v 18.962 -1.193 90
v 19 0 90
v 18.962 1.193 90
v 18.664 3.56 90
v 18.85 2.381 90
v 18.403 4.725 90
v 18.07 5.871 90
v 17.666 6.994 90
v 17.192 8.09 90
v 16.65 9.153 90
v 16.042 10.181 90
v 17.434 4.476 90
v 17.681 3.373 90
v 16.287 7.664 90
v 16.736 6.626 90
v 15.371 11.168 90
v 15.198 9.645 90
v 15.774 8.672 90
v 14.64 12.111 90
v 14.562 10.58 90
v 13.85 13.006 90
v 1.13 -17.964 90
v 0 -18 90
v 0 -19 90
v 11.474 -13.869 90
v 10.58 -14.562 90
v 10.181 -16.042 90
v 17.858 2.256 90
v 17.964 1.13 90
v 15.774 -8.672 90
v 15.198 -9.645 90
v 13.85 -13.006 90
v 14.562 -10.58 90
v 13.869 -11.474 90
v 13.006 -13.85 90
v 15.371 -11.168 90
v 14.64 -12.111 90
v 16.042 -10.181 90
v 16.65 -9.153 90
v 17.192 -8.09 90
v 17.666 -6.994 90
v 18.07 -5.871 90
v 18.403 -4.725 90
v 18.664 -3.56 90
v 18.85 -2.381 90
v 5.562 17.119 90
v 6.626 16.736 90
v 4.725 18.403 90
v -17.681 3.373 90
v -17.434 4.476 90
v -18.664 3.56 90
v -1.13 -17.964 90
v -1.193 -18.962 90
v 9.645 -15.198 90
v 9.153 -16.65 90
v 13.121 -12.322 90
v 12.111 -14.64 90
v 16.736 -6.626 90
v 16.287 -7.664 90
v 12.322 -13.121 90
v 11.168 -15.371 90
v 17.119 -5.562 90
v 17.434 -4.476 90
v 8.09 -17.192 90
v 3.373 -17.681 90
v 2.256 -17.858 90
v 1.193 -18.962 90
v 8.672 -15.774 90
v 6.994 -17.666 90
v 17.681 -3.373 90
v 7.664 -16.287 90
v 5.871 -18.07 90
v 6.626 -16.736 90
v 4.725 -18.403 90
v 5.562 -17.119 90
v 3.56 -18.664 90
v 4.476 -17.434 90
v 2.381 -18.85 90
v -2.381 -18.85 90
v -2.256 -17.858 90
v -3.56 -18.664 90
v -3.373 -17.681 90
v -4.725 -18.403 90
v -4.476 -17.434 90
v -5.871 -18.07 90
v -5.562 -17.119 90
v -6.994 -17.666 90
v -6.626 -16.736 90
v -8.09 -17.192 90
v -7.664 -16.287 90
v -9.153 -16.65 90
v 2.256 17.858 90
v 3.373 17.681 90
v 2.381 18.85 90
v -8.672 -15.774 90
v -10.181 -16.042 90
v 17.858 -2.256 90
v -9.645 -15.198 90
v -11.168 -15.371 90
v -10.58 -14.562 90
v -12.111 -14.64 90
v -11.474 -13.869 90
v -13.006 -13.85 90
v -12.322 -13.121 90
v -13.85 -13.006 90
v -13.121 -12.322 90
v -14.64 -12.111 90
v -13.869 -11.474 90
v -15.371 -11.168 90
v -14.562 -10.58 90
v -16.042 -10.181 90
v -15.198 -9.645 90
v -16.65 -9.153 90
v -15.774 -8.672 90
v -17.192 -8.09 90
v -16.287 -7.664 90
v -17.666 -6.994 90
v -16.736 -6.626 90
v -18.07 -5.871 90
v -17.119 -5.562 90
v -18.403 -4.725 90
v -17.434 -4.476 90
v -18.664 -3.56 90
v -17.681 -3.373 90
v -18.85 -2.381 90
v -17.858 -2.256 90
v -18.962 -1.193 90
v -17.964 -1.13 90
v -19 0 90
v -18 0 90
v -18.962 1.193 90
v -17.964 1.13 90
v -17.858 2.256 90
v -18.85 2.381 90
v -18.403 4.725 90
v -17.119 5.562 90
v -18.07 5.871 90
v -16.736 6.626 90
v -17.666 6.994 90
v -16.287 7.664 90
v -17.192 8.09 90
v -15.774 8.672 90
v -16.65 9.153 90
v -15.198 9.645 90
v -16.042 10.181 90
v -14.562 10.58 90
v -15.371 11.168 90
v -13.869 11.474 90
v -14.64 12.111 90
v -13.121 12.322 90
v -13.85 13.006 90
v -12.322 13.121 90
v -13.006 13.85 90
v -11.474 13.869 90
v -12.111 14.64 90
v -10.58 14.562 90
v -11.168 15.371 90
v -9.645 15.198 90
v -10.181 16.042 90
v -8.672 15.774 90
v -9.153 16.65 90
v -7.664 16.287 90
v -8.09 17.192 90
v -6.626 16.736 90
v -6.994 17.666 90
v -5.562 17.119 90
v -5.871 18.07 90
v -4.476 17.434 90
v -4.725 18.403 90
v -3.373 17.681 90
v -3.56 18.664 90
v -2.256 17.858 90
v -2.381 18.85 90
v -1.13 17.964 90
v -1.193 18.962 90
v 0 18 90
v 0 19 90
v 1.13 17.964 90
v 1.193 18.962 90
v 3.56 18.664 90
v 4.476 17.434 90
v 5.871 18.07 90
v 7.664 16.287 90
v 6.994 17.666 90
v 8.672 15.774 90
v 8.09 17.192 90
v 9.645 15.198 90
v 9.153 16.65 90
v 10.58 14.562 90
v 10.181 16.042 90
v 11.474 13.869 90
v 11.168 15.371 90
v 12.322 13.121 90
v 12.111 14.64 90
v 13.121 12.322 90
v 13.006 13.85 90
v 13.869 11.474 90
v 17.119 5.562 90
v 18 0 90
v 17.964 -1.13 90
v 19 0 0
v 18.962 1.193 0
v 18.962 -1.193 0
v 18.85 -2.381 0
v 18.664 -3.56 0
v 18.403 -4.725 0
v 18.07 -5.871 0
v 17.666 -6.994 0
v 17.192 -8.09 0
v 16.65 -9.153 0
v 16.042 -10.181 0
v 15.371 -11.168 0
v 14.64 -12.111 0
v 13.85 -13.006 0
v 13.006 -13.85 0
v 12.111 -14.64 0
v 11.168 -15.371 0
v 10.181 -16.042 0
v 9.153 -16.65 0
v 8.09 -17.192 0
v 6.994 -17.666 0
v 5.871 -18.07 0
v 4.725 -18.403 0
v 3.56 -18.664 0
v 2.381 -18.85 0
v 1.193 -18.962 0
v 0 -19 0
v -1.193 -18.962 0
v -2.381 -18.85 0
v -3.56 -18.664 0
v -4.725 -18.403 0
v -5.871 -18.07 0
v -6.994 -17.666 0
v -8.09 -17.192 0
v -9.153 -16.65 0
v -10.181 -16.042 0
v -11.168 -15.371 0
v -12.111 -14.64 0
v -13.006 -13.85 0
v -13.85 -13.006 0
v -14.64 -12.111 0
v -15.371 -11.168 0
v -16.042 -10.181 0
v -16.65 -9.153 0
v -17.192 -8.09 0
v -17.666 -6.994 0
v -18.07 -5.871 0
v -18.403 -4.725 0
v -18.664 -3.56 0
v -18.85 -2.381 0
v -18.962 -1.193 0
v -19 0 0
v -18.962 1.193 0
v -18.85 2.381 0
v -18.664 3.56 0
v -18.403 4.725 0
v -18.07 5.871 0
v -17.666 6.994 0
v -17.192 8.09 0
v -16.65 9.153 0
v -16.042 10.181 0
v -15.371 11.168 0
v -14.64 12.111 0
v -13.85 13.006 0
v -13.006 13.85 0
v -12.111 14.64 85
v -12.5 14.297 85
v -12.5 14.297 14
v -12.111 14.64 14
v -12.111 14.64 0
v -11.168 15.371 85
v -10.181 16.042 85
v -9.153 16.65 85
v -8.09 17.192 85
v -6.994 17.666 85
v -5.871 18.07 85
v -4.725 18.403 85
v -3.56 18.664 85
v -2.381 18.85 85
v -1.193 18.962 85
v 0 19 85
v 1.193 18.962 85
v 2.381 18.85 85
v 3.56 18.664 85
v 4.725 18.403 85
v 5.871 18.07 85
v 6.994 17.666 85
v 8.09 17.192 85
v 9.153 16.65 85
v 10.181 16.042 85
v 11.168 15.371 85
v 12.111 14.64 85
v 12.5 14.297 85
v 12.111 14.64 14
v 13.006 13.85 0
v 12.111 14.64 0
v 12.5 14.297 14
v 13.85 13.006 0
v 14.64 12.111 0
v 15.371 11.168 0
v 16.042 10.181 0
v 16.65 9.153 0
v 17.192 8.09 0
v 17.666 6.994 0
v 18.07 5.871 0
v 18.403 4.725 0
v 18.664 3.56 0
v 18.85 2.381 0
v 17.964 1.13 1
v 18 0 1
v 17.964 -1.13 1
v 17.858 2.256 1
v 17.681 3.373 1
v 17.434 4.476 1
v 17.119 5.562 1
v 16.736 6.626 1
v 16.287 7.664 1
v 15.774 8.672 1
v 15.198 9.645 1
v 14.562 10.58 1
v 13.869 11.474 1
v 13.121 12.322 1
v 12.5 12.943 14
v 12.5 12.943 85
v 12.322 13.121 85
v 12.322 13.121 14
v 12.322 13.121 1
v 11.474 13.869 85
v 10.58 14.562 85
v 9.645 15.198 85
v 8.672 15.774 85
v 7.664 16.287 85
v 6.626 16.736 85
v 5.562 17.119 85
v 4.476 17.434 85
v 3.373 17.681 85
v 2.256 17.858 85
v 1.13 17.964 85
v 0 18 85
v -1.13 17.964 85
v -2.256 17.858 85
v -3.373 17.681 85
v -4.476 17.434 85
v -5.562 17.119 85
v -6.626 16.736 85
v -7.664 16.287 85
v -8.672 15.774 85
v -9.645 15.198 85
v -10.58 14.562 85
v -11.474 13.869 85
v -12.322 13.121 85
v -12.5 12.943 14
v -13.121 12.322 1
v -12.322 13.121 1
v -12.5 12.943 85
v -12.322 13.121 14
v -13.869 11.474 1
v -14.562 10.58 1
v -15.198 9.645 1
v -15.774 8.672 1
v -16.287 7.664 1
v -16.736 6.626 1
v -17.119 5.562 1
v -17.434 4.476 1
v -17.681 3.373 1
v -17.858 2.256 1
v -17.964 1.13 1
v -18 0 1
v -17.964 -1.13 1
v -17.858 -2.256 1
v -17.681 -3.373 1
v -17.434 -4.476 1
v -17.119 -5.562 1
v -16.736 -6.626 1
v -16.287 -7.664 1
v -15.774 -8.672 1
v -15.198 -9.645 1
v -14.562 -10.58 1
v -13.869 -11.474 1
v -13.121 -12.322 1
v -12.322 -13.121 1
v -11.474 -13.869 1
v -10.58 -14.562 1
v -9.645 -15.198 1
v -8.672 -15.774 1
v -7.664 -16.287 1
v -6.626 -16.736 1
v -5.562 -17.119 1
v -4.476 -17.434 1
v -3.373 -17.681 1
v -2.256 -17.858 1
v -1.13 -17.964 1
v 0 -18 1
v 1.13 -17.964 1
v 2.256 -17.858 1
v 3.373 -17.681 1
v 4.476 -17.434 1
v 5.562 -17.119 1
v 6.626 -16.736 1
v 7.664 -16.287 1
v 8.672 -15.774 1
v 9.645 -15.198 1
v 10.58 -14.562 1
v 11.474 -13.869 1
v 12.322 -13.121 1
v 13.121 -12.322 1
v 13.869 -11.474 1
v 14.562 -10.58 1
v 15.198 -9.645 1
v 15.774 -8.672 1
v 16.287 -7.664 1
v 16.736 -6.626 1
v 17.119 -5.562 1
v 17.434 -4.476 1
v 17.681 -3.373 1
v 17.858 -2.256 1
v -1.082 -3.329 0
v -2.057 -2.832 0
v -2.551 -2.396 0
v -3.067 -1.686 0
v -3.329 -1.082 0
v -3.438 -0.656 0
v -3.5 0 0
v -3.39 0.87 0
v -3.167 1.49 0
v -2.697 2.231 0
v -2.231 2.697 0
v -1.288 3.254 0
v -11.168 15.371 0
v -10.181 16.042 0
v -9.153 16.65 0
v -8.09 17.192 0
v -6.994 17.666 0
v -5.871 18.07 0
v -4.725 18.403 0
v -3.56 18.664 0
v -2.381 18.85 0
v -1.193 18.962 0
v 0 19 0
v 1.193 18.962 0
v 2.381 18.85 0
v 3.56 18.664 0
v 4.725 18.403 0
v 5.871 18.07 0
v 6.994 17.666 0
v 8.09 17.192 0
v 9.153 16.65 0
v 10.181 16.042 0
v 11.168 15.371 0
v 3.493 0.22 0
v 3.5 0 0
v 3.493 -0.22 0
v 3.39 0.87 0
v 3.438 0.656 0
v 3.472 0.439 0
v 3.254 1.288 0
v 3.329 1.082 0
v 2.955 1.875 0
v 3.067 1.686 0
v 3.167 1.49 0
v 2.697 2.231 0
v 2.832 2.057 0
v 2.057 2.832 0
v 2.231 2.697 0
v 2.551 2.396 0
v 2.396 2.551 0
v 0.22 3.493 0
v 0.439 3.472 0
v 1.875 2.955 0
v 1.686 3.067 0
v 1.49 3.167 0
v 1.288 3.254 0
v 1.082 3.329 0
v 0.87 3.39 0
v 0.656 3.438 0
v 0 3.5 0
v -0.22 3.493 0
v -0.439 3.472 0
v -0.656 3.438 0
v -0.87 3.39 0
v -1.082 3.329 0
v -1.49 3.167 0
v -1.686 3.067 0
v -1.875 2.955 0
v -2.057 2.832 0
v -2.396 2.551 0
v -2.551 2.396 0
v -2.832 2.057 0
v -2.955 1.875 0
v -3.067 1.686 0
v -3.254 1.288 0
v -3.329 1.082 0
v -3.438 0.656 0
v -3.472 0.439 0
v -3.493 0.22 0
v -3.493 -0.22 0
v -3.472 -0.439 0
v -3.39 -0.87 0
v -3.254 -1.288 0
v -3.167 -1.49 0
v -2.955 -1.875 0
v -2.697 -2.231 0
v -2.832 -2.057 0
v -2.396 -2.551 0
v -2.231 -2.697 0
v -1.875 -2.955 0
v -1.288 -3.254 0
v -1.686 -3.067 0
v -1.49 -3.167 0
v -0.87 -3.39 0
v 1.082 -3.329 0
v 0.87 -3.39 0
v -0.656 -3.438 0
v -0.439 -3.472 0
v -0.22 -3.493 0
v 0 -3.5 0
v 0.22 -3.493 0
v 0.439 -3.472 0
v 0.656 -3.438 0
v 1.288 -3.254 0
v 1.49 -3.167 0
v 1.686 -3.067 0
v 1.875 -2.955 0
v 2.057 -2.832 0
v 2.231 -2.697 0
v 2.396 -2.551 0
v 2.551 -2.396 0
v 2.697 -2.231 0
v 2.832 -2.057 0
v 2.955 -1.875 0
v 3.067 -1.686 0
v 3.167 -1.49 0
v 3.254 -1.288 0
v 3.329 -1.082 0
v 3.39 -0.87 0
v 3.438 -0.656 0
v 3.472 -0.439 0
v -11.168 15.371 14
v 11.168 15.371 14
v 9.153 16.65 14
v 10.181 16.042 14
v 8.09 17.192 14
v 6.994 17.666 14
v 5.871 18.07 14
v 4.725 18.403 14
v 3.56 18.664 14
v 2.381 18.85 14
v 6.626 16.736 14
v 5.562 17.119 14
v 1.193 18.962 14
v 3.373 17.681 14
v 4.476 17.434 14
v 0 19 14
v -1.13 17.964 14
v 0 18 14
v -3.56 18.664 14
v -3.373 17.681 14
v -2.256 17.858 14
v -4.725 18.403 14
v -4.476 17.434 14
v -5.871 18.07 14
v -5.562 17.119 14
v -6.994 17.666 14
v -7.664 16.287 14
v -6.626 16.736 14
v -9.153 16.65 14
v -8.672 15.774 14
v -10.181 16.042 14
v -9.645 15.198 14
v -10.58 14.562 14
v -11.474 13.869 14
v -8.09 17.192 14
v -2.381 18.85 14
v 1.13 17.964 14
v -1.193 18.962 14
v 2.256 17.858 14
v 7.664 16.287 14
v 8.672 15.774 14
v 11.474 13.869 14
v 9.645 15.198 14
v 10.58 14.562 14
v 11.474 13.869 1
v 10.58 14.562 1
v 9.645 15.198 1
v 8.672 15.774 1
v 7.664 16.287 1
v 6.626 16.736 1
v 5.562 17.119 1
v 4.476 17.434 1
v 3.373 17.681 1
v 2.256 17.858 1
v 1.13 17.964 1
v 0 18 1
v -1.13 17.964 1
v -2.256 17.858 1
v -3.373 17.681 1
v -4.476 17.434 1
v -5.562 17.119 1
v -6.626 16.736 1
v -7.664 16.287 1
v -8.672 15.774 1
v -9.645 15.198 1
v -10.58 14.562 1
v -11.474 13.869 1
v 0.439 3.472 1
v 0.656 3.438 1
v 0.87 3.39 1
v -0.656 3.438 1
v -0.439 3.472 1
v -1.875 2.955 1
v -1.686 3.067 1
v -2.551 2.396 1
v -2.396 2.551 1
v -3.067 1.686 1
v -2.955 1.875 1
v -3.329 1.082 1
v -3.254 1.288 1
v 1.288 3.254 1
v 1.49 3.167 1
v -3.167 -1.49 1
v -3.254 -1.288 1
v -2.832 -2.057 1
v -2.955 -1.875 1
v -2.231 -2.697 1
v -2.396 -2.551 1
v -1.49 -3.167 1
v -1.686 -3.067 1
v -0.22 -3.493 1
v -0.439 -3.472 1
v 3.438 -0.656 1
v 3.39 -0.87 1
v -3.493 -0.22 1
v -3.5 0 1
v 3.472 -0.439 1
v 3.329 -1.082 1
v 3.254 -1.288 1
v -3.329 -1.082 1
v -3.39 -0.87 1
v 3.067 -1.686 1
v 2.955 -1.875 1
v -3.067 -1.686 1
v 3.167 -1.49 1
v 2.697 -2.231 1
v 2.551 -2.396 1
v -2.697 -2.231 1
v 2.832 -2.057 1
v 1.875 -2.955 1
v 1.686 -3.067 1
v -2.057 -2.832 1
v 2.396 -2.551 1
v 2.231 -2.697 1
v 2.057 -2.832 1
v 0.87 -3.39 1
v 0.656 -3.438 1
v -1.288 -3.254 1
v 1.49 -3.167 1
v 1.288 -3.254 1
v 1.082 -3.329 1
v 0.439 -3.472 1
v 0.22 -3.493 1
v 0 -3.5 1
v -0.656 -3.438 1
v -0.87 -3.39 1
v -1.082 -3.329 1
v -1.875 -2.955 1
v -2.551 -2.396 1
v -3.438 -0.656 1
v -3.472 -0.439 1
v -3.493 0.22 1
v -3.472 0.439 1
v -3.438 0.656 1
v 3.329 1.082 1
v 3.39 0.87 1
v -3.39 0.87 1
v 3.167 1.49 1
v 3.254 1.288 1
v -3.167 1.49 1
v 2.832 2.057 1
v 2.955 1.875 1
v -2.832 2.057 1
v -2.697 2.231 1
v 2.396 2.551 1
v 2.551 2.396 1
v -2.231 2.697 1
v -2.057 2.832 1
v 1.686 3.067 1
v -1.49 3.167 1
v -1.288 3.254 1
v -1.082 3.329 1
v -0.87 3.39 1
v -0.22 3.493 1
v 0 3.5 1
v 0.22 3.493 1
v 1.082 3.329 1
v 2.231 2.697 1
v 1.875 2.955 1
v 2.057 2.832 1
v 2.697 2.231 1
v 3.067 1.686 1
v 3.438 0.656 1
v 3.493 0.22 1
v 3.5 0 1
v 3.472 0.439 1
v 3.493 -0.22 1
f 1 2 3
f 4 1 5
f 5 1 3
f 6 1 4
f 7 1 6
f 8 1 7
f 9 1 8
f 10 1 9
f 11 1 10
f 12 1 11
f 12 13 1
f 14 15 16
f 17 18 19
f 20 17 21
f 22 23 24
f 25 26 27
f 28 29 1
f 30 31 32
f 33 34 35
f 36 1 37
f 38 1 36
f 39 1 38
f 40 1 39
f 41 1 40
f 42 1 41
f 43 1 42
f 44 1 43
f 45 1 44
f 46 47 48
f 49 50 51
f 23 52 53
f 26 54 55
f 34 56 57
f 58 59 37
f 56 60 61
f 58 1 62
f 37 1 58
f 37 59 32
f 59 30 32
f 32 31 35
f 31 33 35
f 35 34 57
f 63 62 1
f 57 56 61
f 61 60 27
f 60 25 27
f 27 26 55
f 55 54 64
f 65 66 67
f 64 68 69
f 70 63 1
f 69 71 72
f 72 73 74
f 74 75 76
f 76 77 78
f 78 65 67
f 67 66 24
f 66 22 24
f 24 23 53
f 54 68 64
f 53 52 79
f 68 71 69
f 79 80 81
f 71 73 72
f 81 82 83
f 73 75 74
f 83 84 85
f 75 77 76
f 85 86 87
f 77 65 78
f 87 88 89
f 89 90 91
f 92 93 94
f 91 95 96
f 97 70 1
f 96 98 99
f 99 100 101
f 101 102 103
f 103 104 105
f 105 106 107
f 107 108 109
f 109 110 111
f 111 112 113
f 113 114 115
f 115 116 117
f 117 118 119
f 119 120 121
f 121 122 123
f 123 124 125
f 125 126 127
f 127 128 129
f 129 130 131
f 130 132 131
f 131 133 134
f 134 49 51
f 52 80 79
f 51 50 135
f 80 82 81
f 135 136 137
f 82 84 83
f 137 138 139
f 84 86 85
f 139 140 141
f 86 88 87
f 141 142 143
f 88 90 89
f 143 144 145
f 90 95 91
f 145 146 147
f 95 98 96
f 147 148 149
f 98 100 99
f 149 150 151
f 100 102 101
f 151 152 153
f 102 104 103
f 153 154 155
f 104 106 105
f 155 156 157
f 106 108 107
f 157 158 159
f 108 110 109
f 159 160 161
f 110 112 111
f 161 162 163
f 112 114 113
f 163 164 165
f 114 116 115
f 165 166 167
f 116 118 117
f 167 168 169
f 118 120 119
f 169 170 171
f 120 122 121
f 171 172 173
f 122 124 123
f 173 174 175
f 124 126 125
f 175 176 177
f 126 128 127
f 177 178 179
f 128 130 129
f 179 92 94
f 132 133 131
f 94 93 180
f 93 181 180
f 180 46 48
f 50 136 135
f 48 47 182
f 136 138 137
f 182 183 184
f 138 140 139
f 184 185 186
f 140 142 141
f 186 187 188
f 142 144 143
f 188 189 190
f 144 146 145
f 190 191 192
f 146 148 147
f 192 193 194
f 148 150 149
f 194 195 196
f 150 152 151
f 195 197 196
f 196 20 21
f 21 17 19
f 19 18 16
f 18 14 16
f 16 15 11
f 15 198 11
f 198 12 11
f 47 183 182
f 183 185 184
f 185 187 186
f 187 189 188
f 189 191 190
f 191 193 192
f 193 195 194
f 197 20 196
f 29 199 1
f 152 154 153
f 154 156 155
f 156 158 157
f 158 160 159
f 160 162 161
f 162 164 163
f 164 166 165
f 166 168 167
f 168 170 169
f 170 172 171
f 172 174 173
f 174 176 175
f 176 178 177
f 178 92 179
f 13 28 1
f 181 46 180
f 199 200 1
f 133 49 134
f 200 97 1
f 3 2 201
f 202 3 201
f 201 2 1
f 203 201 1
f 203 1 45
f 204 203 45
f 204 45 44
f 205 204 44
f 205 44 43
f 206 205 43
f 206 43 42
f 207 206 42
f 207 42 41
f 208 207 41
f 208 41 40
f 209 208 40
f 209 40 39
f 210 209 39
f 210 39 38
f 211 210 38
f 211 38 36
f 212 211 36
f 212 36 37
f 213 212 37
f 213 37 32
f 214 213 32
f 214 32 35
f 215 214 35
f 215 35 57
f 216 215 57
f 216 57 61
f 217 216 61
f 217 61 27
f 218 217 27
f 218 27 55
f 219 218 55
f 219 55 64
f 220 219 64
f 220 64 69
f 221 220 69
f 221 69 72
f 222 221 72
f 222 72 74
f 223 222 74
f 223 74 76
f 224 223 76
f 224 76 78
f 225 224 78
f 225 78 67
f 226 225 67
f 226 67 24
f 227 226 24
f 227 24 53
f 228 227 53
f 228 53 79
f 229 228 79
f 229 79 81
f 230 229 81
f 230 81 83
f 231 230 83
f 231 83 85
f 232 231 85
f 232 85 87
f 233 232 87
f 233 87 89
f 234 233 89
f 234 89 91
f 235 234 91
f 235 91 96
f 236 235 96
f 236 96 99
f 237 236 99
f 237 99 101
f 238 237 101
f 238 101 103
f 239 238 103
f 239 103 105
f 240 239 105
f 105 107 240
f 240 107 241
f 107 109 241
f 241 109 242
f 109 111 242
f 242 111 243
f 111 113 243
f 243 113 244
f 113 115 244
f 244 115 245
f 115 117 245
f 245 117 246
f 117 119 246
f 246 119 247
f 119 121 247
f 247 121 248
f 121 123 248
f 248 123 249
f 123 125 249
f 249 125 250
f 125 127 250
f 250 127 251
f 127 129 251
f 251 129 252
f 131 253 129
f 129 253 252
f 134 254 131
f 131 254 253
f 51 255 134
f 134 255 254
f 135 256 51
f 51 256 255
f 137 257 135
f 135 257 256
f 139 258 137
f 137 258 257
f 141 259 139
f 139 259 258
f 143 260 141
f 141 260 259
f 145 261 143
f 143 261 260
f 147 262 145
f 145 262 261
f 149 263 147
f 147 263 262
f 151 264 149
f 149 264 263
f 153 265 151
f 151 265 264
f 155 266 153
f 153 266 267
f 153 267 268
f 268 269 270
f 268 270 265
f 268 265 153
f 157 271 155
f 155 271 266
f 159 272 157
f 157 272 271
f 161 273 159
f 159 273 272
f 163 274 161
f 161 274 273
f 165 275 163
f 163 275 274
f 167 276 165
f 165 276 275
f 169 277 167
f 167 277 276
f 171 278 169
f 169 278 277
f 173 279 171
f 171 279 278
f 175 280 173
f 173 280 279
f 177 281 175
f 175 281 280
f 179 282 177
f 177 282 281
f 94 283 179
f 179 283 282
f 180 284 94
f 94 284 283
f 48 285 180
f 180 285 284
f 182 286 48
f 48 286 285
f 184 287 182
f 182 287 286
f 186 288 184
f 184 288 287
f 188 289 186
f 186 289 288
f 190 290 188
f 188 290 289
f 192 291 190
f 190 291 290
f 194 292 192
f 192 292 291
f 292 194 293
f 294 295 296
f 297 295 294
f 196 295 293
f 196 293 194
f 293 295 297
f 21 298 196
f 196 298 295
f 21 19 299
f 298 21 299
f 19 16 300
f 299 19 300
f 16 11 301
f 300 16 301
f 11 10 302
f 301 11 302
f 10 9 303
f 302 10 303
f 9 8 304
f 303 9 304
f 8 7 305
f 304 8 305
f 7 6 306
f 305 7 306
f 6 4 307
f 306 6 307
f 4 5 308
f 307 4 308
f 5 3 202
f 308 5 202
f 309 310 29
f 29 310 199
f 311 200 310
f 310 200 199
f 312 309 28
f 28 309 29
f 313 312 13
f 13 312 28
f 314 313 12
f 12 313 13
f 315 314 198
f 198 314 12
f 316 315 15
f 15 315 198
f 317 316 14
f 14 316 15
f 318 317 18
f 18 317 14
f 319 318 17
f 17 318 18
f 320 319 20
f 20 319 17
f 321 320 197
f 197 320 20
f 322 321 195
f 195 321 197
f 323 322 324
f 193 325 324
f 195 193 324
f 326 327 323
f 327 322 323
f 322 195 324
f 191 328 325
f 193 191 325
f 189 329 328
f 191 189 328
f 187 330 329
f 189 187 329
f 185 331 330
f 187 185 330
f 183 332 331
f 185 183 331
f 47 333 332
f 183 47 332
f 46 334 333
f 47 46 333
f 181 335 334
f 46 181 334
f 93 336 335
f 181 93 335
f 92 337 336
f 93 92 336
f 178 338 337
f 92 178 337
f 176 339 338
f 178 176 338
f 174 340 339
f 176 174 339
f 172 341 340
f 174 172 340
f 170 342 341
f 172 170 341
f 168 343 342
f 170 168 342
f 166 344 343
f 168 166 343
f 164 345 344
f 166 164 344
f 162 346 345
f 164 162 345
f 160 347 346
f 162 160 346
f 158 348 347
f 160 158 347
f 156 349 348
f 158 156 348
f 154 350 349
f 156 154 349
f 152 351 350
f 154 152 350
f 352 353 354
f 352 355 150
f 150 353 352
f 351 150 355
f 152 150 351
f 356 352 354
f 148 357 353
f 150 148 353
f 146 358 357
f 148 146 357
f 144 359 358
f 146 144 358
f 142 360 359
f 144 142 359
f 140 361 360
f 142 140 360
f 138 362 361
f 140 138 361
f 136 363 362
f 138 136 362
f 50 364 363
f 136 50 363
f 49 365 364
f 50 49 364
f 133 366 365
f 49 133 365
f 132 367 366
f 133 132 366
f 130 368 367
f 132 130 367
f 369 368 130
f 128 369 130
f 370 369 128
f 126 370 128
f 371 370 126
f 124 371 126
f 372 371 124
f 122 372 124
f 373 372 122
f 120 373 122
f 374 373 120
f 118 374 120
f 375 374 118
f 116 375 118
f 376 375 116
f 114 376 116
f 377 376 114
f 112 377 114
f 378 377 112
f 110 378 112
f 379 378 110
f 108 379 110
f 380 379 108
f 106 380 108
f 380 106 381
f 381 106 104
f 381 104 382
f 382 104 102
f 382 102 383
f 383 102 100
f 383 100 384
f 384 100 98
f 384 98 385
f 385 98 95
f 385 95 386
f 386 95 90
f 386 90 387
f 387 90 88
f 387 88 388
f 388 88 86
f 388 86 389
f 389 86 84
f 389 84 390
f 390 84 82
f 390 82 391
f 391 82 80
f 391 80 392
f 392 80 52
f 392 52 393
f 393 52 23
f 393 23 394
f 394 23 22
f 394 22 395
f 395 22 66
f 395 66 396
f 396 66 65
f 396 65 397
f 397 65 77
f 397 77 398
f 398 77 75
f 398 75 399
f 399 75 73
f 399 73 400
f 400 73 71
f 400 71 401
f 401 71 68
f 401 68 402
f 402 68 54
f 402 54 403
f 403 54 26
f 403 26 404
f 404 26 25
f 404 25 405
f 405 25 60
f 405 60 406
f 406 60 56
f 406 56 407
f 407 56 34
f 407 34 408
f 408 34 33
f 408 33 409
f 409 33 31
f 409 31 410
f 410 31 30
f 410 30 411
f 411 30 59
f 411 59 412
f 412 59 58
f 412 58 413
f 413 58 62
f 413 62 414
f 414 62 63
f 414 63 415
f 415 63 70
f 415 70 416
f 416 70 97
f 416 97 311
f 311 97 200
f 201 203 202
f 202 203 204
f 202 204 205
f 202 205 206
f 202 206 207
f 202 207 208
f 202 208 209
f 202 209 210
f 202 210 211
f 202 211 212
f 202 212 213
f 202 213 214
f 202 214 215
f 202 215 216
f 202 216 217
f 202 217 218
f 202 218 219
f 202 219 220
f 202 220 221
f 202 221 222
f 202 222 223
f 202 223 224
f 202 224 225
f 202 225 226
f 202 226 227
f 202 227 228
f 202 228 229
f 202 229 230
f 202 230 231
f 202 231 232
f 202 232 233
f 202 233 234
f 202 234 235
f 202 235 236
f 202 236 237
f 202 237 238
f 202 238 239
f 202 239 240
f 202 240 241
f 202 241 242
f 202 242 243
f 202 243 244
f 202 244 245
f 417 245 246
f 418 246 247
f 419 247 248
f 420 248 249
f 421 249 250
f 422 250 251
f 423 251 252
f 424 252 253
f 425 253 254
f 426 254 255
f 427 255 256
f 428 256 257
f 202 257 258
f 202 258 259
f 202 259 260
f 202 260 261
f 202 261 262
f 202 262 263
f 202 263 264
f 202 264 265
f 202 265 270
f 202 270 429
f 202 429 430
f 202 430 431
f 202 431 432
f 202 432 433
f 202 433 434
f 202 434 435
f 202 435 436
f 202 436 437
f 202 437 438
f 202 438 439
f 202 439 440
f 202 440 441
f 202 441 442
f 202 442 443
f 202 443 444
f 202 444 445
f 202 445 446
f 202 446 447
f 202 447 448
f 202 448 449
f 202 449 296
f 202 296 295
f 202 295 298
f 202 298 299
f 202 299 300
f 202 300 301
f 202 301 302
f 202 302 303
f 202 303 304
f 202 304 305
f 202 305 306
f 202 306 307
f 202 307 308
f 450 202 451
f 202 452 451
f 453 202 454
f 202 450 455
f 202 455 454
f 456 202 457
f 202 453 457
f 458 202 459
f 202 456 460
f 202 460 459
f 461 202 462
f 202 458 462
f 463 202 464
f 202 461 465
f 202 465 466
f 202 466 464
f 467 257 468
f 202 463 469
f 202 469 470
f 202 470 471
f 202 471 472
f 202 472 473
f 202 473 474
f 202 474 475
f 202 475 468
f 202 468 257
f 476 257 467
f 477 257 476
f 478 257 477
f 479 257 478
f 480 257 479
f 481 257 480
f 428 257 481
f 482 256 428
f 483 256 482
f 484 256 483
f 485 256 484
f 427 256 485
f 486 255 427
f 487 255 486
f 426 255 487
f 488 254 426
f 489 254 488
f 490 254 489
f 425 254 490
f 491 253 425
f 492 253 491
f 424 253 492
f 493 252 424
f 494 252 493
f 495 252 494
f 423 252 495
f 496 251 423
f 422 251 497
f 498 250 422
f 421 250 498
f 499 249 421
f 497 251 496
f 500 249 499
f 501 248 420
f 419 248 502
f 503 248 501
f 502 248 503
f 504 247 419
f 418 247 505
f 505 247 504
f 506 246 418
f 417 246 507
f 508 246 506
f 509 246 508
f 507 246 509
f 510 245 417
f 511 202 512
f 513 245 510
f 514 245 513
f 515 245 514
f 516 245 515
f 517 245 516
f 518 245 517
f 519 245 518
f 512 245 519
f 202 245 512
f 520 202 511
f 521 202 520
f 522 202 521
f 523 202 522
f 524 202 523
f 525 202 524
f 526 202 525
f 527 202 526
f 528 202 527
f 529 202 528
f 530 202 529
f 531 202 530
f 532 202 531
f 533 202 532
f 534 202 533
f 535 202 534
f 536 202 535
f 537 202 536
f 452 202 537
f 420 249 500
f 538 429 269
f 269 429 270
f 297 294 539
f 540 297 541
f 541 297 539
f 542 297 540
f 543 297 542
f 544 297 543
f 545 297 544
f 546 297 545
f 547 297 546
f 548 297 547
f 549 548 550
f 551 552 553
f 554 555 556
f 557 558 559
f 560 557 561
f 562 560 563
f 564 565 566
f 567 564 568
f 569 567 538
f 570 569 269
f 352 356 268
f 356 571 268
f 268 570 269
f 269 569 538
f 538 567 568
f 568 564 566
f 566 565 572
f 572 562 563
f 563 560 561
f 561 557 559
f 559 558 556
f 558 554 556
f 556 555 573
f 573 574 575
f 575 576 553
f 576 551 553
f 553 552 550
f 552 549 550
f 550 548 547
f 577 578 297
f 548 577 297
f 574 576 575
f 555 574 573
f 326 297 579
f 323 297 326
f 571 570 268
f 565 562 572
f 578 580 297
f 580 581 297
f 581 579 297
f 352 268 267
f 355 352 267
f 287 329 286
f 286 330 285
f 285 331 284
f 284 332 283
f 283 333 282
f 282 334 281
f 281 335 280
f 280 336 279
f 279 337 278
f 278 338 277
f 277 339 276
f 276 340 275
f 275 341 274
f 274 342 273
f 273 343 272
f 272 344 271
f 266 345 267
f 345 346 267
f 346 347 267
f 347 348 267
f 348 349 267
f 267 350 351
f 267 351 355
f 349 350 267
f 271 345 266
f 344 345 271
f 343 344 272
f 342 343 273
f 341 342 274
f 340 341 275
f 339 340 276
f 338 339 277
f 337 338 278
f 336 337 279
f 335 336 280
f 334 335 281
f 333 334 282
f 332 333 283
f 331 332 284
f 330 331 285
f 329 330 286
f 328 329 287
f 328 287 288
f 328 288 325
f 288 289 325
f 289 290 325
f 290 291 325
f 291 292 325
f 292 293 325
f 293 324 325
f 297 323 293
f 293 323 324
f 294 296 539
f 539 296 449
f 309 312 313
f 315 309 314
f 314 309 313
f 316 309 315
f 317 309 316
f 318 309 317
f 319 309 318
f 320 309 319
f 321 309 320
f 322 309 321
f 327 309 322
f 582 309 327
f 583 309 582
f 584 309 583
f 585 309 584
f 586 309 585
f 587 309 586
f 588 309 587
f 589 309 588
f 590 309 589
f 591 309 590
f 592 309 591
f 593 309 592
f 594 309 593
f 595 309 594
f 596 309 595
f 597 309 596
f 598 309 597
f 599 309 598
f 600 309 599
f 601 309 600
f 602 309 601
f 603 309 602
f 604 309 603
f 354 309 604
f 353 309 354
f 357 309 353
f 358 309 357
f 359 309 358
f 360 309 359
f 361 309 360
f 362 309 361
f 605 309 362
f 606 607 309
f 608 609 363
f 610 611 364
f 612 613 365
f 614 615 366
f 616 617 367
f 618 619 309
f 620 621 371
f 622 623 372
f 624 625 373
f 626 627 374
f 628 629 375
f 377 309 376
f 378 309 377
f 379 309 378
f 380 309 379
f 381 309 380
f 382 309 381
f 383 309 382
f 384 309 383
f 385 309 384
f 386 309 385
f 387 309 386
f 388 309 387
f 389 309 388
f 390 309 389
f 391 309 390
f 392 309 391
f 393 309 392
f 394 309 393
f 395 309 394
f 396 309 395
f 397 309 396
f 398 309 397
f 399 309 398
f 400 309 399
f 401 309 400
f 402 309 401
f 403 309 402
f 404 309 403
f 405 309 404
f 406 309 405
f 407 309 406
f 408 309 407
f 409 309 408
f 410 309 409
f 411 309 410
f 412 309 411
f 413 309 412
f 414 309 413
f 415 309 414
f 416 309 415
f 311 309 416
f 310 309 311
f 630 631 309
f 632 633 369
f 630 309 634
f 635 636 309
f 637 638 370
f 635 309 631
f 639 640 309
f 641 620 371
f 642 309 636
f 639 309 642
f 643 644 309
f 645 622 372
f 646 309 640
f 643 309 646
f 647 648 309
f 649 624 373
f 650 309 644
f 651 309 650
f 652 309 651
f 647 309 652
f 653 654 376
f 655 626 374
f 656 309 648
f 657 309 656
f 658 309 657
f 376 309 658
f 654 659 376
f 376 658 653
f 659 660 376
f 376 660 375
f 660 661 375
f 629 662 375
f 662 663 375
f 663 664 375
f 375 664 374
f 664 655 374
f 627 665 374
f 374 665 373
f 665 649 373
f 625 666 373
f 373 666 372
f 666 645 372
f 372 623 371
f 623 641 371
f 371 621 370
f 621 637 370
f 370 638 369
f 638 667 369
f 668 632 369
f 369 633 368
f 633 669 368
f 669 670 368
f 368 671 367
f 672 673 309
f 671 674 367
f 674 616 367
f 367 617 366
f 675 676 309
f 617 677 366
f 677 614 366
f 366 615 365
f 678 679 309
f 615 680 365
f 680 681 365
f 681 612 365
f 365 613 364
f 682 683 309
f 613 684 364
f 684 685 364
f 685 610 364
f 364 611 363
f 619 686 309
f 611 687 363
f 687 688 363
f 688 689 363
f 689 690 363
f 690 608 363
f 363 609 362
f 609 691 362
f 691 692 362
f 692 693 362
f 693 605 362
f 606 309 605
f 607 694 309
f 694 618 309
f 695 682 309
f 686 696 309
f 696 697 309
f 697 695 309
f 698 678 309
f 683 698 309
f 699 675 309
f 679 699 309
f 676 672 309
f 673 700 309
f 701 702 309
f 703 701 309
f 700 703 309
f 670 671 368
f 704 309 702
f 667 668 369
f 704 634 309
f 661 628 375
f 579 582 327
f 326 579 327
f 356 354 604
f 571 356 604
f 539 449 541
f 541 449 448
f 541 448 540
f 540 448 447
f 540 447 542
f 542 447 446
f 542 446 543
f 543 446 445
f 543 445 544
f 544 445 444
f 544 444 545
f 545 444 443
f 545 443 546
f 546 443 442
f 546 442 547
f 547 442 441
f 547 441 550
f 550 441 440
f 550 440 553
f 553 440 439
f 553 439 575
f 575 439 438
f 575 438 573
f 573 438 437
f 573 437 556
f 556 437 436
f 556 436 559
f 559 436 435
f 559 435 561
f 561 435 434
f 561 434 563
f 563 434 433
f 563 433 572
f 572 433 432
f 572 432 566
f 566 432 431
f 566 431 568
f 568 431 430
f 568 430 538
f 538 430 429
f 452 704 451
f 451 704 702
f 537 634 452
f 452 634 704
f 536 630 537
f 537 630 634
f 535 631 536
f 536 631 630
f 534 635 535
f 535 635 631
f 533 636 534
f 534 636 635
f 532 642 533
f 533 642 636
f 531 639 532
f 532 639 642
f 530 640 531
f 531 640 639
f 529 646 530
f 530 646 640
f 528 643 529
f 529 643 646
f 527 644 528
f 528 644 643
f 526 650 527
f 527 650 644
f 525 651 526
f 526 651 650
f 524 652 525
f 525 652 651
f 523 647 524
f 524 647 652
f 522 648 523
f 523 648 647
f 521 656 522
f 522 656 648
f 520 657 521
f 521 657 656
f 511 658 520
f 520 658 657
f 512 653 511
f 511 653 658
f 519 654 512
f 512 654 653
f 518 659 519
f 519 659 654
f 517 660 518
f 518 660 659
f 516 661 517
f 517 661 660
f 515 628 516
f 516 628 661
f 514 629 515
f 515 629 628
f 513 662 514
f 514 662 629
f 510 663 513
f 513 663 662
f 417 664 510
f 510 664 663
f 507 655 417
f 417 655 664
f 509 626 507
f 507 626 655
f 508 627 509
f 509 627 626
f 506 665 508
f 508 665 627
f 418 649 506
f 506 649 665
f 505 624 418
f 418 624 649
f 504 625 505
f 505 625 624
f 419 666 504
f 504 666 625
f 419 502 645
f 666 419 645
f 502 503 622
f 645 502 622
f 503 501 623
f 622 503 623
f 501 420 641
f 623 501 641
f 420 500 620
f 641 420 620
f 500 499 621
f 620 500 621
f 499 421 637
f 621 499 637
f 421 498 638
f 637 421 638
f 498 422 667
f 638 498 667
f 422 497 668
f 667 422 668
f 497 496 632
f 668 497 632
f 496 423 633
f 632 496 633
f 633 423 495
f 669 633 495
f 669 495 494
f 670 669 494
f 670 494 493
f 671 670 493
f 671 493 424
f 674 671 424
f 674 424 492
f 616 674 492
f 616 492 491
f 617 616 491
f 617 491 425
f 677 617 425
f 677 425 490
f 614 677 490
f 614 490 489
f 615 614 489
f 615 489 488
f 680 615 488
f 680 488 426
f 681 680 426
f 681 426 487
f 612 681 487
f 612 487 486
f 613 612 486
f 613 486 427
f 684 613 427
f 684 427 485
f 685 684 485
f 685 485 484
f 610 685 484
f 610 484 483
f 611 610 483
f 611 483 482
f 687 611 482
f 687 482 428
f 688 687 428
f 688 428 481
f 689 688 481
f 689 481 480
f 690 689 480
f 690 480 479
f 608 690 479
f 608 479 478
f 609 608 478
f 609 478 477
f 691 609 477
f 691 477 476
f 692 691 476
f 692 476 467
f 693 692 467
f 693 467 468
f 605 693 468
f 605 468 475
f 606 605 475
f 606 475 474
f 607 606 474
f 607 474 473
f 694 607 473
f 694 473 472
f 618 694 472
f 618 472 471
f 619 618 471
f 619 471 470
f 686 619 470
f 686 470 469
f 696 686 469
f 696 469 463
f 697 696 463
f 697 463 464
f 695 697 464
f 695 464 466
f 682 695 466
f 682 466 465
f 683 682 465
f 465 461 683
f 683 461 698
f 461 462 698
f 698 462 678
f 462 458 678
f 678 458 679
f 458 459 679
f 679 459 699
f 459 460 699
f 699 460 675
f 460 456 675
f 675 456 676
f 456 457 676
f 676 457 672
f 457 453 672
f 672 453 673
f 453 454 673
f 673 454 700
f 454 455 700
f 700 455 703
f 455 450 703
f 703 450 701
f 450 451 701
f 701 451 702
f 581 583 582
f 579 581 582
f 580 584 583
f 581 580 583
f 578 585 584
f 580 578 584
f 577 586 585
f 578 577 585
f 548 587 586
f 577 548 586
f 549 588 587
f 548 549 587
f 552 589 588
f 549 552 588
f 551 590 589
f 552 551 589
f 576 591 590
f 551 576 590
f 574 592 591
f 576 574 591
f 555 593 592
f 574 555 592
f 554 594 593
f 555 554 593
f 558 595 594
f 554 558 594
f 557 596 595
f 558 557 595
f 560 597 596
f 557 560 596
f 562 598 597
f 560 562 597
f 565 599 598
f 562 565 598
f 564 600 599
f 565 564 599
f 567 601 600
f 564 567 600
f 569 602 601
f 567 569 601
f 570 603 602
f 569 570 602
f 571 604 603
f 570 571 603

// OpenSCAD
rotate([0,180,0]){
	translate([0,0,-90]){
		difference(){

			// main body
			cylinder(90,19,19, $fn=100);

			// body hollow
			cylinder(89,18,18, $fn=100);

			// encoder hole
			translate([0,0,89]){
				cylinder(2,3.5,3.5, $fn=100);
			}

			// lcd window
			translate([-12.5,0,5]){
				cube([25,50,71]);
			}
		}
	}
}
